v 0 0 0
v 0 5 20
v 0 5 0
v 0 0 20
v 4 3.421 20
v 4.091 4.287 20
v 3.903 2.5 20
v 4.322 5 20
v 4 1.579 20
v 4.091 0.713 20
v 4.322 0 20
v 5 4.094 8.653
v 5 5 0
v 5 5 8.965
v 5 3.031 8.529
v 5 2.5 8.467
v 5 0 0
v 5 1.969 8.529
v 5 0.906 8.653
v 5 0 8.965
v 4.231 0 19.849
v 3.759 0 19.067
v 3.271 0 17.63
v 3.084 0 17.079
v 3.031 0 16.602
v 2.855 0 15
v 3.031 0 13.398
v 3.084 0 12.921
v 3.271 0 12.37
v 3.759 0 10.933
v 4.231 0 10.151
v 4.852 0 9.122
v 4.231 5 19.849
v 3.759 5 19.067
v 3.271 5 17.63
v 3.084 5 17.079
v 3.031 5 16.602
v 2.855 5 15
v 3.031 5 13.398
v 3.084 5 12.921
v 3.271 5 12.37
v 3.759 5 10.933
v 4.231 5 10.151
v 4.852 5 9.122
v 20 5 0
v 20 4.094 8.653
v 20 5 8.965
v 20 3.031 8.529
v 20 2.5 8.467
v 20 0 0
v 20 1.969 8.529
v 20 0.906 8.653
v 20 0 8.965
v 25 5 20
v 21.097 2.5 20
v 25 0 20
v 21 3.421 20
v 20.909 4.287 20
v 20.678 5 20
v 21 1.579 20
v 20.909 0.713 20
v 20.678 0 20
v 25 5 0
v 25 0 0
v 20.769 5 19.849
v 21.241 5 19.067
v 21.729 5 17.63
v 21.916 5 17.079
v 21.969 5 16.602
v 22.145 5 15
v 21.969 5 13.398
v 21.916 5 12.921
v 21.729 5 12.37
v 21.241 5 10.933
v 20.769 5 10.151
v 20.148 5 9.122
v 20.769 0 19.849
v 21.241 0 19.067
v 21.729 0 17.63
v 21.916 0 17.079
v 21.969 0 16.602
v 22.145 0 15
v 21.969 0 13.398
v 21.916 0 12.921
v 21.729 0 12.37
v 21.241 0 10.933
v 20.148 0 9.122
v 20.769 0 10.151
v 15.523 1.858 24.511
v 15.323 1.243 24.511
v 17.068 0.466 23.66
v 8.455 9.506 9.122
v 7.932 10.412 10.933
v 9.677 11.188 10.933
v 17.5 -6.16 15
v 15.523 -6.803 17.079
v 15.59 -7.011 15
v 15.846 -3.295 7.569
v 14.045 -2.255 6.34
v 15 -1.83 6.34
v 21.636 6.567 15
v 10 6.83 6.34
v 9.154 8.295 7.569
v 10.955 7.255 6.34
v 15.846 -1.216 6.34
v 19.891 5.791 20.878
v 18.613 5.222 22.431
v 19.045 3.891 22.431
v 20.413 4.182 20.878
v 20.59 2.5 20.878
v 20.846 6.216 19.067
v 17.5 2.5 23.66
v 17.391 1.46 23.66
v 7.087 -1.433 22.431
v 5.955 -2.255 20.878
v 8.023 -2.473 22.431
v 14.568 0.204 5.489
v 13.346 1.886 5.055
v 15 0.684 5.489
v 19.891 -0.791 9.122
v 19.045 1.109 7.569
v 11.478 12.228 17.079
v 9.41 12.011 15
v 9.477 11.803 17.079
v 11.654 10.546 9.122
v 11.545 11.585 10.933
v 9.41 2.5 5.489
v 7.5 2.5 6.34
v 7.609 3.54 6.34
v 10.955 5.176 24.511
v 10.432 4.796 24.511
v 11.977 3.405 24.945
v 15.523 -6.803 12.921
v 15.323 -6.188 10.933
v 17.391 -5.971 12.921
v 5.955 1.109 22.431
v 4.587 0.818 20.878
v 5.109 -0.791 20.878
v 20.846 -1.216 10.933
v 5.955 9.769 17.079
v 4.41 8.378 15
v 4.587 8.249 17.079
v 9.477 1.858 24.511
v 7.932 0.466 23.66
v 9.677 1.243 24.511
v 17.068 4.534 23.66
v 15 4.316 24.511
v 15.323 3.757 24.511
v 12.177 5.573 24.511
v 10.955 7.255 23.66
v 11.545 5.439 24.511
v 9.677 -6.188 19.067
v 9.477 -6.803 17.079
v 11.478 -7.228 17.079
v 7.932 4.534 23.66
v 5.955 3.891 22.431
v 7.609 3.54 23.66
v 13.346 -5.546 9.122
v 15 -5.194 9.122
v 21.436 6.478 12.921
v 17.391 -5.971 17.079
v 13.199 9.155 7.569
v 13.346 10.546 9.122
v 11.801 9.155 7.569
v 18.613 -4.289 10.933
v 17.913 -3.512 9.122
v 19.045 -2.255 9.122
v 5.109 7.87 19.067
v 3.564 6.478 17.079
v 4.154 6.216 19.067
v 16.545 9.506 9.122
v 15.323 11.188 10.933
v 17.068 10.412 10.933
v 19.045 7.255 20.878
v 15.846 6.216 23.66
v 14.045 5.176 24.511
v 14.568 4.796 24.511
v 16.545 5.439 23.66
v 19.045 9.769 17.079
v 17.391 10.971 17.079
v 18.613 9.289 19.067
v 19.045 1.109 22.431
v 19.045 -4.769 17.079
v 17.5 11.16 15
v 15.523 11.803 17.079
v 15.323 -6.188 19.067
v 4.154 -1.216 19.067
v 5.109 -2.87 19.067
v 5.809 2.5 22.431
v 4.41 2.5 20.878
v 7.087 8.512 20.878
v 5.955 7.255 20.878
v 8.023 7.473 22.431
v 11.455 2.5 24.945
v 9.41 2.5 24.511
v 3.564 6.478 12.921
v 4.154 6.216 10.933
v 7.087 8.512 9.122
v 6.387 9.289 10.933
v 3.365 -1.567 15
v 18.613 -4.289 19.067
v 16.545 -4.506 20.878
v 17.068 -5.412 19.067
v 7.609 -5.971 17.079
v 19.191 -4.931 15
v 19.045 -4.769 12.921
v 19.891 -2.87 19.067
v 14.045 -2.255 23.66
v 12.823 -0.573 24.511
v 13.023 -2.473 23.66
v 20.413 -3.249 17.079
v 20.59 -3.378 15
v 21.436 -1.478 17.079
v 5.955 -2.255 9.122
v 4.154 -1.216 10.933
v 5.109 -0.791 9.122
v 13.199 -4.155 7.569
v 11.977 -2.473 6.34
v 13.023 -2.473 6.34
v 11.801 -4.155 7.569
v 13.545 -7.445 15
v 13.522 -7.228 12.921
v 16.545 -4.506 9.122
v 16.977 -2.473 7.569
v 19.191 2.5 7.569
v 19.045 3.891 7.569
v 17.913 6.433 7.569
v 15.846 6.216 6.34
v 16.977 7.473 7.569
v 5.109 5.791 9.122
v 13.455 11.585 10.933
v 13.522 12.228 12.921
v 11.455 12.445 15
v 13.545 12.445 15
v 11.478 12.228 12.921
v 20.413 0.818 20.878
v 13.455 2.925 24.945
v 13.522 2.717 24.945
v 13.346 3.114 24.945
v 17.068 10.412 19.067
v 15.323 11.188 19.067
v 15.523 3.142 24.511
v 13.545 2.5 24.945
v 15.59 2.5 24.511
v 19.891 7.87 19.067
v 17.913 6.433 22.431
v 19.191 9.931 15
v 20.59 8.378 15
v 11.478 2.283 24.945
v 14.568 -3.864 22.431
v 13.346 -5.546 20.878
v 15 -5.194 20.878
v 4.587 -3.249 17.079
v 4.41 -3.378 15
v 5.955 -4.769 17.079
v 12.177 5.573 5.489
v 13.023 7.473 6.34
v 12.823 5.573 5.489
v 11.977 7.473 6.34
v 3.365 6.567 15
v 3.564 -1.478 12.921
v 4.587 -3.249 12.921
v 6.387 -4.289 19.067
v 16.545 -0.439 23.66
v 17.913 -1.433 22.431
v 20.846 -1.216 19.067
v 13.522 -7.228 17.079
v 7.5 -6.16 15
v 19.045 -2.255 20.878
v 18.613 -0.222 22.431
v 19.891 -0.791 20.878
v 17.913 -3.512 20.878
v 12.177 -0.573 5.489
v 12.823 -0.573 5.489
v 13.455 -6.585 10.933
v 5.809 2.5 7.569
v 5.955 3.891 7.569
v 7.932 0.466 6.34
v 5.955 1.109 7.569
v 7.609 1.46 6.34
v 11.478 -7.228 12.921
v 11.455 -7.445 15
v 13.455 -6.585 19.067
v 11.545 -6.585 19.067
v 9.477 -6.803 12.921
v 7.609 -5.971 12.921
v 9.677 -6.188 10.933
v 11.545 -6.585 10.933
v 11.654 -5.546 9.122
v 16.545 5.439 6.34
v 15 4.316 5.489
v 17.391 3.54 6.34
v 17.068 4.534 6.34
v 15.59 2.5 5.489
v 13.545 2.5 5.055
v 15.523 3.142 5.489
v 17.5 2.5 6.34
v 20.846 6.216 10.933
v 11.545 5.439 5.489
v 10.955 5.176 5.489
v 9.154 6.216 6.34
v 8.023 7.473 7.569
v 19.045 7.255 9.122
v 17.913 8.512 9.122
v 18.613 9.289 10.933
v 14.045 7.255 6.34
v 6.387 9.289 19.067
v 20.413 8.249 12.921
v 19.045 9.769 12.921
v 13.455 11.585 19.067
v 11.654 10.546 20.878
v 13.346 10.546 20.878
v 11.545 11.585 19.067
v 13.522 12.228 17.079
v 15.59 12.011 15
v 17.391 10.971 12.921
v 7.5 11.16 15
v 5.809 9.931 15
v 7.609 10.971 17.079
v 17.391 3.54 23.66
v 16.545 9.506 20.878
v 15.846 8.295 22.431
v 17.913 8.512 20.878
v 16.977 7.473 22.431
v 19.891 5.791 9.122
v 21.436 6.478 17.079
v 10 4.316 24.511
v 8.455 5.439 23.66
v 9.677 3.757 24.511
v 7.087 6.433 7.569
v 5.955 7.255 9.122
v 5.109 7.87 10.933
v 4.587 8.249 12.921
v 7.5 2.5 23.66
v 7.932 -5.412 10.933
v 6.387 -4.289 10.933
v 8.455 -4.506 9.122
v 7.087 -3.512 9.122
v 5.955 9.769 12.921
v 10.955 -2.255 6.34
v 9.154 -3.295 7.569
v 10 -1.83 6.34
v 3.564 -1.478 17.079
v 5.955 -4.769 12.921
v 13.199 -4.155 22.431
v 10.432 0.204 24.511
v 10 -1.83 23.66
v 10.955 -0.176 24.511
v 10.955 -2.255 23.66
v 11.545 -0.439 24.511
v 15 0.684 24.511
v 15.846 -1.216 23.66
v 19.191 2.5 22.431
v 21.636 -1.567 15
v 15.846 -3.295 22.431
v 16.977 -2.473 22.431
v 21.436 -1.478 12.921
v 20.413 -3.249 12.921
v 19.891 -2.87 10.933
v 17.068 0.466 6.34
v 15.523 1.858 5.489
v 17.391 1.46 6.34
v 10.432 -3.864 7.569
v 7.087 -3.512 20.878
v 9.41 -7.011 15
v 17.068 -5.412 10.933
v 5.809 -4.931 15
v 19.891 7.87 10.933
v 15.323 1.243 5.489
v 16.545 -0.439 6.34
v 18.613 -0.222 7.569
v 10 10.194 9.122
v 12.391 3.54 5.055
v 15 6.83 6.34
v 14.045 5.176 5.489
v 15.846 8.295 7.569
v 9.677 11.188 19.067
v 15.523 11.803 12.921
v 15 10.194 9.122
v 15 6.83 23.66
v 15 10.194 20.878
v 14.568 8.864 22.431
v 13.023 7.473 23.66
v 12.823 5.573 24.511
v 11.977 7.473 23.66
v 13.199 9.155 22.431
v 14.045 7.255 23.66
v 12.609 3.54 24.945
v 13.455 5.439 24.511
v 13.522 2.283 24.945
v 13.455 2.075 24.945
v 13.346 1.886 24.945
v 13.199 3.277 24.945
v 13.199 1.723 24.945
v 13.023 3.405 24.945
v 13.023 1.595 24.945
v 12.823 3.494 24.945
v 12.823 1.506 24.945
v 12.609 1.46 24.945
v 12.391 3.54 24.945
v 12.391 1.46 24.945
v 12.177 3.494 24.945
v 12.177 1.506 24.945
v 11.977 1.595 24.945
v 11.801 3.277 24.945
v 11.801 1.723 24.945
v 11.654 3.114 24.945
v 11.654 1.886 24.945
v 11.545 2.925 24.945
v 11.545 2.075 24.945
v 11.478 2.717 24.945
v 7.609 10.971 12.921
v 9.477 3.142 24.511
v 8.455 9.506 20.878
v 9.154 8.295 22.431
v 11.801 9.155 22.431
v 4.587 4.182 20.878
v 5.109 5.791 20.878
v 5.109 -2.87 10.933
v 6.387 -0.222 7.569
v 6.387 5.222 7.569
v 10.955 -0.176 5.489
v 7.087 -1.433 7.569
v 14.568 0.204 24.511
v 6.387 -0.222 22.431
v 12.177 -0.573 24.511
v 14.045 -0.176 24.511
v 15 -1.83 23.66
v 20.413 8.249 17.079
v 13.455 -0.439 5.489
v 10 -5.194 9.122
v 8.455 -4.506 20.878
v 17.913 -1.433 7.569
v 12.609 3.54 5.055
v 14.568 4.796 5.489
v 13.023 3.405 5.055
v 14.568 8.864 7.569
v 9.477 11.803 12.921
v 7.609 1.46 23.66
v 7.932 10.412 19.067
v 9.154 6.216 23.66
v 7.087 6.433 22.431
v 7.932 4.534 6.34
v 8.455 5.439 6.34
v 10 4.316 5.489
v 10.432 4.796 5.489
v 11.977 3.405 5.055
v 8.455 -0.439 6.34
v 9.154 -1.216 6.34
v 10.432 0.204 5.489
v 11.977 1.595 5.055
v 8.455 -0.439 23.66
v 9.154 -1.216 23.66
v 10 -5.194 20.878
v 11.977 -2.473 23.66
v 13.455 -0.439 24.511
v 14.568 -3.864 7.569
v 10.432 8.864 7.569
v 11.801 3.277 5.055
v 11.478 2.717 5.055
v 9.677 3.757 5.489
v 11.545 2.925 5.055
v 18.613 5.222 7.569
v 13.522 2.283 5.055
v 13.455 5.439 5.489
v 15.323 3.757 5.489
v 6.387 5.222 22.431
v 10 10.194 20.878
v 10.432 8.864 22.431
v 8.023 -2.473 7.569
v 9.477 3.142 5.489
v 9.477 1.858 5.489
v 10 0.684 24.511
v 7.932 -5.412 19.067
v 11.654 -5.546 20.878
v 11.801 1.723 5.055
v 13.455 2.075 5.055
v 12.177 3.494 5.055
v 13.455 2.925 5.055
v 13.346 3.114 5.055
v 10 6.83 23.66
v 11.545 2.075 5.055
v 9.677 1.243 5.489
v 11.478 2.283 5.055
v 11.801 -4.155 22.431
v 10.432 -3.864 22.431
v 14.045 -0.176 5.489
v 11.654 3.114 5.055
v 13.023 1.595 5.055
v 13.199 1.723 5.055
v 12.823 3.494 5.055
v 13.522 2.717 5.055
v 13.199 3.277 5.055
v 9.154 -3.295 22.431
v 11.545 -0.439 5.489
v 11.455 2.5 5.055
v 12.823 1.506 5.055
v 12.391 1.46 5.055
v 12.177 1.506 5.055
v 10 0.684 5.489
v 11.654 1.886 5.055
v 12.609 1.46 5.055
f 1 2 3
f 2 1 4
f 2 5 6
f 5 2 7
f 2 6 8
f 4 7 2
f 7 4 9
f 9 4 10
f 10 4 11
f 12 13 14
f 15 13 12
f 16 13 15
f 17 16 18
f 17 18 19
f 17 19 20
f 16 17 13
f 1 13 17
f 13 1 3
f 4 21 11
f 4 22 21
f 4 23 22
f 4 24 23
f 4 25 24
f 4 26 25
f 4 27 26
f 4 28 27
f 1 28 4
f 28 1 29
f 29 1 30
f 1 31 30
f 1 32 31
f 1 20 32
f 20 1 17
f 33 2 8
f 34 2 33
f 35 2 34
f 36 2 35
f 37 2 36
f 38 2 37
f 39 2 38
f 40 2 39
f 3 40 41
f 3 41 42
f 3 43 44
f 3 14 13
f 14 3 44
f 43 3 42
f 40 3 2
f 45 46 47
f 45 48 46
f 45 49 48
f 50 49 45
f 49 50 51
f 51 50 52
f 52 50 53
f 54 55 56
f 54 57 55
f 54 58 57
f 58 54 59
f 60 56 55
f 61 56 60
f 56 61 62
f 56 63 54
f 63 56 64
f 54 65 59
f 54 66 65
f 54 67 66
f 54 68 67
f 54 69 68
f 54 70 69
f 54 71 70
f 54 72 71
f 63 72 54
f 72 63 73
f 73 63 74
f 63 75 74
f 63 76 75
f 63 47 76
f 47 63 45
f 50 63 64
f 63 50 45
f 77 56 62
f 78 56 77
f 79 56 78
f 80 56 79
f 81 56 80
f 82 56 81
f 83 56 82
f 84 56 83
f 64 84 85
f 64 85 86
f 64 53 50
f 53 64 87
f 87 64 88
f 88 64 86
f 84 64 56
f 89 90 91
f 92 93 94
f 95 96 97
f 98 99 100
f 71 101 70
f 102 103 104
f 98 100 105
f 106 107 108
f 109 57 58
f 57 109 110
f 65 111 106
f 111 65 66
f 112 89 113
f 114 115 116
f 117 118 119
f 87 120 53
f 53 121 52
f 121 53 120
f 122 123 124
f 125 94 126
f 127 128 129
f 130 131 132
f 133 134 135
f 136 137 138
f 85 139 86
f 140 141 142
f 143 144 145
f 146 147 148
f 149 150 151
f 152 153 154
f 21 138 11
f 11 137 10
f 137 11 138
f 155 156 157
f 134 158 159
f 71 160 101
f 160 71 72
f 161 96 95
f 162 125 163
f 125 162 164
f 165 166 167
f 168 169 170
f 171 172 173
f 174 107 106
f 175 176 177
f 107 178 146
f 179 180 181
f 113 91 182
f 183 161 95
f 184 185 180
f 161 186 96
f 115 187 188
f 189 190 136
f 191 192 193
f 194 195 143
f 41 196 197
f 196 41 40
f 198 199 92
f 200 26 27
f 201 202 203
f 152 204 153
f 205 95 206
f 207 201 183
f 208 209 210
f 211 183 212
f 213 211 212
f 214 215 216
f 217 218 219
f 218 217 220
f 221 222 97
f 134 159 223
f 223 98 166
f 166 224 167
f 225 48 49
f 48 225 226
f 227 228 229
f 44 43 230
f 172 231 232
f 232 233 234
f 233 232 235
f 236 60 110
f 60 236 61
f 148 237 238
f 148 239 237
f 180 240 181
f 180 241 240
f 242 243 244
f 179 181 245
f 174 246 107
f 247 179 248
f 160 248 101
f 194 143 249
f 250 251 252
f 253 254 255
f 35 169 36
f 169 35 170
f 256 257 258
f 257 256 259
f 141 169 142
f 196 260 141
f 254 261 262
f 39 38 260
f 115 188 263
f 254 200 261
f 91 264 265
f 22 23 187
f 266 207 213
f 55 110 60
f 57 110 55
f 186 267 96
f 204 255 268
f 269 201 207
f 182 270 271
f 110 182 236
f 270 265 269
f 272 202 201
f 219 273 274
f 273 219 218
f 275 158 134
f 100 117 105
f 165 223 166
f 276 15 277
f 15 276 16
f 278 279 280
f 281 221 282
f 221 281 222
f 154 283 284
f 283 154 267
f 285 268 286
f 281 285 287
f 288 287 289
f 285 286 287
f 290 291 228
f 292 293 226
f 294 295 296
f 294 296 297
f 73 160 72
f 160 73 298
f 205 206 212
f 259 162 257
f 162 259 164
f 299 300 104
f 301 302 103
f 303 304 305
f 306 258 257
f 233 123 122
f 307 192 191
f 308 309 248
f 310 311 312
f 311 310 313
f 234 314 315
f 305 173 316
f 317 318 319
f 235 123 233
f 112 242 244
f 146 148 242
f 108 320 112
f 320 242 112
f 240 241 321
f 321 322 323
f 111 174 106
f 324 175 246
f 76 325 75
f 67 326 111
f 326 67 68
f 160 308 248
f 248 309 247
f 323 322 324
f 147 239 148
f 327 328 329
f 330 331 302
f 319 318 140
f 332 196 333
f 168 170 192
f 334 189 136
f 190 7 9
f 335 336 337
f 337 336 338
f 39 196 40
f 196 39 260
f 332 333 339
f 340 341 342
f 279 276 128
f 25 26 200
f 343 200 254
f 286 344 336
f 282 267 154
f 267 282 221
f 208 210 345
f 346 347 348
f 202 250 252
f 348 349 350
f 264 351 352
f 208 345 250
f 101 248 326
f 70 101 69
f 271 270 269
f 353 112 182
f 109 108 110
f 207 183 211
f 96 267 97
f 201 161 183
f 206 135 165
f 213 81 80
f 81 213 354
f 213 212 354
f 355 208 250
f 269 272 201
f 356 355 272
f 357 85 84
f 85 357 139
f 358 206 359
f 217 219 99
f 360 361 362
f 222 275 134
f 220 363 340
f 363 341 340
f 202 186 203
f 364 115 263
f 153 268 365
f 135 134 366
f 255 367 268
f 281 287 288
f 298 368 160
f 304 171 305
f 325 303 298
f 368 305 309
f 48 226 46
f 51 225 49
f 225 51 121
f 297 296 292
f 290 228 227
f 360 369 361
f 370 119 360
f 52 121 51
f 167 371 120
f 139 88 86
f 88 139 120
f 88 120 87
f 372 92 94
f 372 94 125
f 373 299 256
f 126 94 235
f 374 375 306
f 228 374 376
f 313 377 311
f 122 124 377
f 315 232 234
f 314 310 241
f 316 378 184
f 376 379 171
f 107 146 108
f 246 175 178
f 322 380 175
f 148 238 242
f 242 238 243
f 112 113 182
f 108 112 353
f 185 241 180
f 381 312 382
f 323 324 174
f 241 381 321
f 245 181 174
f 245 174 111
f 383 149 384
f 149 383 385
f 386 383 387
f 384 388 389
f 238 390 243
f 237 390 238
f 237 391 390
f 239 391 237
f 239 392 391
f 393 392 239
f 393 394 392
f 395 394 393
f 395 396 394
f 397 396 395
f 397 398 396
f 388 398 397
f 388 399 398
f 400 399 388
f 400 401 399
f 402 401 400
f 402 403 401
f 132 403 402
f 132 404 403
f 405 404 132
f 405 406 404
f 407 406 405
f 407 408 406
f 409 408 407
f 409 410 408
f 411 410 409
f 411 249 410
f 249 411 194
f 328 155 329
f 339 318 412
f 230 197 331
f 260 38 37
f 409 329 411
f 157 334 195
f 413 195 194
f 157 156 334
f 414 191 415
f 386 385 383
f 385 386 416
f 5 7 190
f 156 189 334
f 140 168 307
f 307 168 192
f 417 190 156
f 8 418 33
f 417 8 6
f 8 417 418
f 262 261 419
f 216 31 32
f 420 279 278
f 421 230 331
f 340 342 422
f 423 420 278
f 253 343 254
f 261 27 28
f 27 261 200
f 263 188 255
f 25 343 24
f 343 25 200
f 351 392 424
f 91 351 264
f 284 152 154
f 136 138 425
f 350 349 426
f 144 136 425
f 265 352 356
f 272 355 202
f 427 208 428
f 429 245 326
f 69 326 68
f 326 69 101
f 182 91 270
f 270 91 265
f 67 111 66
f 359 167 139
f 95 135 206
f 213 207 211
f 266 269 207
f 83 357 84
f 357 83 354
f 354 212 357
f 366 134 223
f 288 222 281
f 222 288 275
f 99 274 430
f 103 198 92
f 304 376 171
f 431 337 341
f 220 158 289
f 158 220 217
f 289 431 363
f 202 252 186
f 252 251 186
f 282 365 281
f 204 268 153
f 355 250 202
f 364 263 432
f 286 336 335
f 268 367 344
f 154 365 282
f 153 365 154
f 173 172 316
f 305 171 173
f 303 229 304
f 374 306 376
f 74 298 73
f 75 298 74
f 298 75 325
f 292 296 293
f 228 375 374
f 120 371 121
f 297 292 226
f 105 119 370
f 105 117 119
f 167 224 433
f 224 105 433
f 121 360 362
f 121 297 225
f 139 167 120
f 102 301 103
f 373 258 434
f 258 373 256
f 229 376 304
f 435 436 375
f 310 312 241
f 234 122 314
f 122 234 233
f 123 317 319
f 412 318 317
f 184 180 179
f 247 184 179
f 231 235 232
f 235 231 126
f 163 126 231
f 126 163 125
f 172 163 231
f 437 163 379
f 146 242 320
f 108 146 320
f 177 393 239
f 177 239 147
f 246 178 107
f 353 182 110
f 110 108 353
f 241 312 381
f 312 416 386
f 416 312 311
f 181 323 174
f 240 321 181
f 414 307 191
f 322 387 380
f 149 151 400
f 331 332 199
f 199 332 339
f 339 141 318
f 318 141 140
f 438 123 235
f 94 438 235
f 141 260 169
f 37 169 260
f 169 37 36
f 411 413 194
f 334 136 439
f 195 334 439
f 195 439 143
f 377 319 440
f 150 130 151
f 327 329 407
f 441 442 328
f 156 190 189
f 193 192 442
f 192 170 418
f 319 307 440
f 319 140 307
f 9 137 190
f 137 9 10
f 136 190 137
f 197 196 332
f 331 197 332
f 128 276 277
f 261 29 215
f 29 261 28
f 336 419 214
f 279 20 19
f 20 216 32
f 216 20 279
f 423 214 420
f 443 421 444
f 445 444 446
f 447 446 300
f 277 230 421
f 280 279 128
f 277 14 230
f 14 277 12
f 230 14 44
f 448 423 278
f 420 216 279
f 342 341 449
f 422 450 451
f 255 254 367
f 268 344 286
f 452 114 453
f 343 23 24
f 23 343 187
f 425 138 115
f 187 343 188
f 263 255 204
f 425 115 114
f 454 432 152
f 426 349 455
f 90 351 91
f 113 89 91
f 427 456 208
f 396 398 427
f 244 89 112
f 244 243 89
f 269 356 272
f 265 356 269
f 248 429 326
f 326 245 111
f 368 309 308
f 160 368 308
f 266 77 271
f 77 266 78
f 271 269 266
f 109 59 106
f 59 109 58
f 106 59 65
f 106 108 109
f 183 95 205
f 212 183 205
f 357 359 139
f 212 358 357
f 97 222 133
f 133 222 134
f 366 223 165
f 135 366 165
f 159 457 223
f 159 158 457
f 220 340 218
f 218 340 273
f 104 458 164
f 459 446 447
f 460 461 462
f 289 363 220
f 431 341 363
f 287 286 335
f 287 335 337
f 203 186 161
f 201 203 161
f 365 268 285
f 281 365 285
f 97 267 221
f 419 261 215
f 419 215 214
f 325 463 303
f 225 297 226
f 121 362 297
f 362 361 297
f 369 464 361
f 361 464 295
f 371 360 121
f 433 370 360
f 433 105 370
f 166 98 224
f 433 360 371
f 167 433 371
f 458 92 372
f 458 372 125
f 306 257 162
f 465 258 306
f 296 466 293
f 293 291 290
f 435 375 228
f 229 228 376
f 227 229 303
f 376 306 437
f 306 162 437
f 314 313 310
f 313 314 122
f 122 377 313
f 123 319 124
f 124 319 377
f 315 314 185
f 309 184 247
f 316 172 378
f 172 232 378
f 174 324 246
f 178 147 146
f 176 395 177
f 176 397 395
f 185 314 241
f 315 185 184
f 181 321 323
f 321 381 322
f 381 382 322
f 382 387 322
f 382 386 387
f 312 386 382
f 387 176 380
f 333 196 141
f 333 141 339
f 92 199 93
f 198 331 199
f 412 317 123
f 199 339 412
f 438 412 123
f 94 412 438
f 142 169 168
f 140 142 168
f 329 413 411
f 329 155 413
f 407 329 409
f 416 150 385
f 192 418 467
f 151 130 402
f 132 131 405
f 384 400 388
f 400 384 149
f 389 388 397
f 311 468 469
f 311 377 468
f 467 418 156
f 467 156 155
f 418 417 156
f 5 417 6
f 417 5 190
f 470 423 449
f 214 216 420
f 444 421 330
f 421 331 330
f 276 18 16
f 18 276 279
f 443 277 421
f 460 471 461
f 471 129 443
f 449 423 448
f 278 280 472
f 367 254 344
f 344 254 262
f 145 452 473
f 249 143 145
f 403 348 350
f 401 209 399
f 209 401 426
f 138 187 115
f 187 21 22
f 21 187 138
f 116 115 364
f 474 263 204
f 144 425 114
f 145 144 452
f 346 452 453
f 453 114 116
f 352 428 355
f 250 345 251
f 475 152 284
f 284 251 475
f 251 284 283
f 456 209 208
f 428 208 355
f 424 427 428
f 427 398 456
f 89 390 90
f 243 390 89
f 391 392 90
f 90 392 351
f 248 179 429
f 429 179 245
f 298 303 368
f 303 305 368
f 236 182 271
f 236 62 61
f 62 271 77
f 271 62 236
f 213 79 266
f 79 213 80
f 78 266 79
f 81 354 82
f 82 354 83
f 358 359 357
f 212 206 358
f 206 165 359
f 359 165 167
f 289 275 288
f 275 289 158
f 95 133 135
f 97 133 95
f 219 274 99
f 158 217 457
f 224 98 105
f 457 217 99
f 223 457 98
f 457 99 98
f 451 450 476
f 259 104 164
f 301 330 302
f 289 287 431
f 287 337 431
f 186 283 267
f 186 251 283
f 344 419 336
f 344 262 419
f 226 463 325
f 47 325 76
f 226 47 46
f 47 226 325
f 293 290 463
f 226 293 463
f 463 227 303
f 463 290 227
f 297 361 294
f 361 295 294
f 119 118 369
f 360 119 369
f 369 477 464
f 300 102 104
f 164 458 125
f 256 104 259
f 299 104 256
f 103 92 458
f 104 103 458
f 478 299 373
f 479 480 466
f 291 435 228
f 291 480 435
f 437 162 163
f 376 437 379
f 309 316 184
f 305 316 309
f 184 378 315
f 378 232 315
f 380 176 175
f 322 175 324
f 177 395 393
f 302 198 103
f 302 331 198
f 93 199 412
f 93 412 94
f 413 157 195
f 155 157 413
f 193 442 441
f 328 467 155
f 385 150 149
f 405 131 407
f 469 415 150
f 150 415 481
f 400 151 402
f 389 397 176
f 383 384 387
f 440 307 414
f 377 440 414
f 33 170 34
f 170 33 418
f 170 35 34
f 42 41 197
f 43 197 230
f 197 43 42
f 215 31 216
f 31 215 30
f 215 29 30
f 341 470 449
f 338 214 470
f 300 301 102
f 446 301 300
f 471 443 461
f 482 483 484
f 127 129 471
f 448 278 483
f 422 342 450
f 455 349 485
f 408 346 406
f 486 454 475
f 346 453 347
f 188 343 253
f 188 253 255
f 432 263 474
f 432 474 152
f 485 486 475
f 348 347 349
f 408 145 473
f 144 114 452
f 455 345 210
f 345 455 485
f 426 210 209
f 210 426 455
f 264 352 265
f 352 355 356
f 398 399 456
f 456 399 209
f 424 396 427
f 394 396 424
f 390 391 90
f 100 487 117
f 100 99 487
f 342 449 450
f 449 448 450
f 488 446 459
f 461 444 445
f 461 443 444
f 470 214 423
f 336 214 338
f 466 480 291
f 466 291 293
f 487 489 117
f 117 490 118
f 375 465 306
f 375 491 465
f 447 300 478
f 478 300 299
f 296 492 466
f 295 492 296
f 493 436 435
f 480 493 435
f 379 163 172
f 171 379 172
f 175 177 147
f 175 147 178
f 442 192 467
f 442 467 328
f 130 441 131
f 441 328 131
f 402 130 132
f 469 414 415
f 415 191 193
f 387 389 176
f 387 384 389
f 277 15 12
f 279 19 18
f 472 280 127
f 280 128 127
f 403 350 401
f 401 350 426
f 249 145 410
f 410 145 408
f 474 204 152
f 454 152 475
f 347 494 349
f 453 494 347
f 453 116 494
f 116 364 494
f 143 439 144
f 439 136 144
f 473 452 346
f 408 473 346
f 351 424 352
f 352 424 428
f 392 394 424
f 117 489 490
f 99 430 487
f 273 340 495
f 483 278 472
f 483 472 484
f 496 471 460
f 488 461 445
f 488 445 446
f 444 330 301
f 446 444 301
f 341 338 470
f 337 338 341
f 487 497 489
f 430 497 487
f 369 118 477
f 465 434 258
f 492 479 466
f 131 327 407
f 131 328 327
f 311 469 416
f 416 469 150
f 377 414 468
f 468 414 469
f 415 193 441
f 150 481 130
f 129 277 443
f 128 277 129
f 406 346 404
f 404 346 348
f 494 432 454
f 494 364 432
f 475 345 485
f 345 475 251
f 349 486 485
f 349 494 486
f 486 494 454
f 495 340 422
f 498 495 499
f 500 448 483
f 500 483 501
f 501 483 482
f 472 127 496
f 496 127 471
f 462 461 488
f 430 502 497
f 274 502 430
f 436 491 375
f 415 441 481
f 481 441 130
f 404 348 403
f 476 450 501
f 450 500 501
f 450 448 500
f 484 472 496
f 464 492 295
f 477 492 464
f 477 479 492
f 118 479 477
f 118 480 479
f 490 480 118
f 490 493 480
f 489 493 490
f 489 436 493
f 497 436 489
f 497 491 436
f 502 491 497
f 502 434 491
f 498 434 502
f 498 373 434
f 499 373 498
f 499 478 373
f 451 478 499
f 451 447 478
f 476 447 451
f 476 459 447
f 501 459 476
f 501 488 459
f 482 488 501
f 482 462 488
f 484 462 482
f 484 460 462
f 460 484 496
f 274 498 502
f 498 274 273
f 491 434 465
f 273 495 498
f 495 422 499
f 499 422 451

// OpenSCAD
cube([5,5,20]);

translate([20,0,0]) cube([5,5,20]);

translate([25/2,5/2, 15]) sphere(d=20);
